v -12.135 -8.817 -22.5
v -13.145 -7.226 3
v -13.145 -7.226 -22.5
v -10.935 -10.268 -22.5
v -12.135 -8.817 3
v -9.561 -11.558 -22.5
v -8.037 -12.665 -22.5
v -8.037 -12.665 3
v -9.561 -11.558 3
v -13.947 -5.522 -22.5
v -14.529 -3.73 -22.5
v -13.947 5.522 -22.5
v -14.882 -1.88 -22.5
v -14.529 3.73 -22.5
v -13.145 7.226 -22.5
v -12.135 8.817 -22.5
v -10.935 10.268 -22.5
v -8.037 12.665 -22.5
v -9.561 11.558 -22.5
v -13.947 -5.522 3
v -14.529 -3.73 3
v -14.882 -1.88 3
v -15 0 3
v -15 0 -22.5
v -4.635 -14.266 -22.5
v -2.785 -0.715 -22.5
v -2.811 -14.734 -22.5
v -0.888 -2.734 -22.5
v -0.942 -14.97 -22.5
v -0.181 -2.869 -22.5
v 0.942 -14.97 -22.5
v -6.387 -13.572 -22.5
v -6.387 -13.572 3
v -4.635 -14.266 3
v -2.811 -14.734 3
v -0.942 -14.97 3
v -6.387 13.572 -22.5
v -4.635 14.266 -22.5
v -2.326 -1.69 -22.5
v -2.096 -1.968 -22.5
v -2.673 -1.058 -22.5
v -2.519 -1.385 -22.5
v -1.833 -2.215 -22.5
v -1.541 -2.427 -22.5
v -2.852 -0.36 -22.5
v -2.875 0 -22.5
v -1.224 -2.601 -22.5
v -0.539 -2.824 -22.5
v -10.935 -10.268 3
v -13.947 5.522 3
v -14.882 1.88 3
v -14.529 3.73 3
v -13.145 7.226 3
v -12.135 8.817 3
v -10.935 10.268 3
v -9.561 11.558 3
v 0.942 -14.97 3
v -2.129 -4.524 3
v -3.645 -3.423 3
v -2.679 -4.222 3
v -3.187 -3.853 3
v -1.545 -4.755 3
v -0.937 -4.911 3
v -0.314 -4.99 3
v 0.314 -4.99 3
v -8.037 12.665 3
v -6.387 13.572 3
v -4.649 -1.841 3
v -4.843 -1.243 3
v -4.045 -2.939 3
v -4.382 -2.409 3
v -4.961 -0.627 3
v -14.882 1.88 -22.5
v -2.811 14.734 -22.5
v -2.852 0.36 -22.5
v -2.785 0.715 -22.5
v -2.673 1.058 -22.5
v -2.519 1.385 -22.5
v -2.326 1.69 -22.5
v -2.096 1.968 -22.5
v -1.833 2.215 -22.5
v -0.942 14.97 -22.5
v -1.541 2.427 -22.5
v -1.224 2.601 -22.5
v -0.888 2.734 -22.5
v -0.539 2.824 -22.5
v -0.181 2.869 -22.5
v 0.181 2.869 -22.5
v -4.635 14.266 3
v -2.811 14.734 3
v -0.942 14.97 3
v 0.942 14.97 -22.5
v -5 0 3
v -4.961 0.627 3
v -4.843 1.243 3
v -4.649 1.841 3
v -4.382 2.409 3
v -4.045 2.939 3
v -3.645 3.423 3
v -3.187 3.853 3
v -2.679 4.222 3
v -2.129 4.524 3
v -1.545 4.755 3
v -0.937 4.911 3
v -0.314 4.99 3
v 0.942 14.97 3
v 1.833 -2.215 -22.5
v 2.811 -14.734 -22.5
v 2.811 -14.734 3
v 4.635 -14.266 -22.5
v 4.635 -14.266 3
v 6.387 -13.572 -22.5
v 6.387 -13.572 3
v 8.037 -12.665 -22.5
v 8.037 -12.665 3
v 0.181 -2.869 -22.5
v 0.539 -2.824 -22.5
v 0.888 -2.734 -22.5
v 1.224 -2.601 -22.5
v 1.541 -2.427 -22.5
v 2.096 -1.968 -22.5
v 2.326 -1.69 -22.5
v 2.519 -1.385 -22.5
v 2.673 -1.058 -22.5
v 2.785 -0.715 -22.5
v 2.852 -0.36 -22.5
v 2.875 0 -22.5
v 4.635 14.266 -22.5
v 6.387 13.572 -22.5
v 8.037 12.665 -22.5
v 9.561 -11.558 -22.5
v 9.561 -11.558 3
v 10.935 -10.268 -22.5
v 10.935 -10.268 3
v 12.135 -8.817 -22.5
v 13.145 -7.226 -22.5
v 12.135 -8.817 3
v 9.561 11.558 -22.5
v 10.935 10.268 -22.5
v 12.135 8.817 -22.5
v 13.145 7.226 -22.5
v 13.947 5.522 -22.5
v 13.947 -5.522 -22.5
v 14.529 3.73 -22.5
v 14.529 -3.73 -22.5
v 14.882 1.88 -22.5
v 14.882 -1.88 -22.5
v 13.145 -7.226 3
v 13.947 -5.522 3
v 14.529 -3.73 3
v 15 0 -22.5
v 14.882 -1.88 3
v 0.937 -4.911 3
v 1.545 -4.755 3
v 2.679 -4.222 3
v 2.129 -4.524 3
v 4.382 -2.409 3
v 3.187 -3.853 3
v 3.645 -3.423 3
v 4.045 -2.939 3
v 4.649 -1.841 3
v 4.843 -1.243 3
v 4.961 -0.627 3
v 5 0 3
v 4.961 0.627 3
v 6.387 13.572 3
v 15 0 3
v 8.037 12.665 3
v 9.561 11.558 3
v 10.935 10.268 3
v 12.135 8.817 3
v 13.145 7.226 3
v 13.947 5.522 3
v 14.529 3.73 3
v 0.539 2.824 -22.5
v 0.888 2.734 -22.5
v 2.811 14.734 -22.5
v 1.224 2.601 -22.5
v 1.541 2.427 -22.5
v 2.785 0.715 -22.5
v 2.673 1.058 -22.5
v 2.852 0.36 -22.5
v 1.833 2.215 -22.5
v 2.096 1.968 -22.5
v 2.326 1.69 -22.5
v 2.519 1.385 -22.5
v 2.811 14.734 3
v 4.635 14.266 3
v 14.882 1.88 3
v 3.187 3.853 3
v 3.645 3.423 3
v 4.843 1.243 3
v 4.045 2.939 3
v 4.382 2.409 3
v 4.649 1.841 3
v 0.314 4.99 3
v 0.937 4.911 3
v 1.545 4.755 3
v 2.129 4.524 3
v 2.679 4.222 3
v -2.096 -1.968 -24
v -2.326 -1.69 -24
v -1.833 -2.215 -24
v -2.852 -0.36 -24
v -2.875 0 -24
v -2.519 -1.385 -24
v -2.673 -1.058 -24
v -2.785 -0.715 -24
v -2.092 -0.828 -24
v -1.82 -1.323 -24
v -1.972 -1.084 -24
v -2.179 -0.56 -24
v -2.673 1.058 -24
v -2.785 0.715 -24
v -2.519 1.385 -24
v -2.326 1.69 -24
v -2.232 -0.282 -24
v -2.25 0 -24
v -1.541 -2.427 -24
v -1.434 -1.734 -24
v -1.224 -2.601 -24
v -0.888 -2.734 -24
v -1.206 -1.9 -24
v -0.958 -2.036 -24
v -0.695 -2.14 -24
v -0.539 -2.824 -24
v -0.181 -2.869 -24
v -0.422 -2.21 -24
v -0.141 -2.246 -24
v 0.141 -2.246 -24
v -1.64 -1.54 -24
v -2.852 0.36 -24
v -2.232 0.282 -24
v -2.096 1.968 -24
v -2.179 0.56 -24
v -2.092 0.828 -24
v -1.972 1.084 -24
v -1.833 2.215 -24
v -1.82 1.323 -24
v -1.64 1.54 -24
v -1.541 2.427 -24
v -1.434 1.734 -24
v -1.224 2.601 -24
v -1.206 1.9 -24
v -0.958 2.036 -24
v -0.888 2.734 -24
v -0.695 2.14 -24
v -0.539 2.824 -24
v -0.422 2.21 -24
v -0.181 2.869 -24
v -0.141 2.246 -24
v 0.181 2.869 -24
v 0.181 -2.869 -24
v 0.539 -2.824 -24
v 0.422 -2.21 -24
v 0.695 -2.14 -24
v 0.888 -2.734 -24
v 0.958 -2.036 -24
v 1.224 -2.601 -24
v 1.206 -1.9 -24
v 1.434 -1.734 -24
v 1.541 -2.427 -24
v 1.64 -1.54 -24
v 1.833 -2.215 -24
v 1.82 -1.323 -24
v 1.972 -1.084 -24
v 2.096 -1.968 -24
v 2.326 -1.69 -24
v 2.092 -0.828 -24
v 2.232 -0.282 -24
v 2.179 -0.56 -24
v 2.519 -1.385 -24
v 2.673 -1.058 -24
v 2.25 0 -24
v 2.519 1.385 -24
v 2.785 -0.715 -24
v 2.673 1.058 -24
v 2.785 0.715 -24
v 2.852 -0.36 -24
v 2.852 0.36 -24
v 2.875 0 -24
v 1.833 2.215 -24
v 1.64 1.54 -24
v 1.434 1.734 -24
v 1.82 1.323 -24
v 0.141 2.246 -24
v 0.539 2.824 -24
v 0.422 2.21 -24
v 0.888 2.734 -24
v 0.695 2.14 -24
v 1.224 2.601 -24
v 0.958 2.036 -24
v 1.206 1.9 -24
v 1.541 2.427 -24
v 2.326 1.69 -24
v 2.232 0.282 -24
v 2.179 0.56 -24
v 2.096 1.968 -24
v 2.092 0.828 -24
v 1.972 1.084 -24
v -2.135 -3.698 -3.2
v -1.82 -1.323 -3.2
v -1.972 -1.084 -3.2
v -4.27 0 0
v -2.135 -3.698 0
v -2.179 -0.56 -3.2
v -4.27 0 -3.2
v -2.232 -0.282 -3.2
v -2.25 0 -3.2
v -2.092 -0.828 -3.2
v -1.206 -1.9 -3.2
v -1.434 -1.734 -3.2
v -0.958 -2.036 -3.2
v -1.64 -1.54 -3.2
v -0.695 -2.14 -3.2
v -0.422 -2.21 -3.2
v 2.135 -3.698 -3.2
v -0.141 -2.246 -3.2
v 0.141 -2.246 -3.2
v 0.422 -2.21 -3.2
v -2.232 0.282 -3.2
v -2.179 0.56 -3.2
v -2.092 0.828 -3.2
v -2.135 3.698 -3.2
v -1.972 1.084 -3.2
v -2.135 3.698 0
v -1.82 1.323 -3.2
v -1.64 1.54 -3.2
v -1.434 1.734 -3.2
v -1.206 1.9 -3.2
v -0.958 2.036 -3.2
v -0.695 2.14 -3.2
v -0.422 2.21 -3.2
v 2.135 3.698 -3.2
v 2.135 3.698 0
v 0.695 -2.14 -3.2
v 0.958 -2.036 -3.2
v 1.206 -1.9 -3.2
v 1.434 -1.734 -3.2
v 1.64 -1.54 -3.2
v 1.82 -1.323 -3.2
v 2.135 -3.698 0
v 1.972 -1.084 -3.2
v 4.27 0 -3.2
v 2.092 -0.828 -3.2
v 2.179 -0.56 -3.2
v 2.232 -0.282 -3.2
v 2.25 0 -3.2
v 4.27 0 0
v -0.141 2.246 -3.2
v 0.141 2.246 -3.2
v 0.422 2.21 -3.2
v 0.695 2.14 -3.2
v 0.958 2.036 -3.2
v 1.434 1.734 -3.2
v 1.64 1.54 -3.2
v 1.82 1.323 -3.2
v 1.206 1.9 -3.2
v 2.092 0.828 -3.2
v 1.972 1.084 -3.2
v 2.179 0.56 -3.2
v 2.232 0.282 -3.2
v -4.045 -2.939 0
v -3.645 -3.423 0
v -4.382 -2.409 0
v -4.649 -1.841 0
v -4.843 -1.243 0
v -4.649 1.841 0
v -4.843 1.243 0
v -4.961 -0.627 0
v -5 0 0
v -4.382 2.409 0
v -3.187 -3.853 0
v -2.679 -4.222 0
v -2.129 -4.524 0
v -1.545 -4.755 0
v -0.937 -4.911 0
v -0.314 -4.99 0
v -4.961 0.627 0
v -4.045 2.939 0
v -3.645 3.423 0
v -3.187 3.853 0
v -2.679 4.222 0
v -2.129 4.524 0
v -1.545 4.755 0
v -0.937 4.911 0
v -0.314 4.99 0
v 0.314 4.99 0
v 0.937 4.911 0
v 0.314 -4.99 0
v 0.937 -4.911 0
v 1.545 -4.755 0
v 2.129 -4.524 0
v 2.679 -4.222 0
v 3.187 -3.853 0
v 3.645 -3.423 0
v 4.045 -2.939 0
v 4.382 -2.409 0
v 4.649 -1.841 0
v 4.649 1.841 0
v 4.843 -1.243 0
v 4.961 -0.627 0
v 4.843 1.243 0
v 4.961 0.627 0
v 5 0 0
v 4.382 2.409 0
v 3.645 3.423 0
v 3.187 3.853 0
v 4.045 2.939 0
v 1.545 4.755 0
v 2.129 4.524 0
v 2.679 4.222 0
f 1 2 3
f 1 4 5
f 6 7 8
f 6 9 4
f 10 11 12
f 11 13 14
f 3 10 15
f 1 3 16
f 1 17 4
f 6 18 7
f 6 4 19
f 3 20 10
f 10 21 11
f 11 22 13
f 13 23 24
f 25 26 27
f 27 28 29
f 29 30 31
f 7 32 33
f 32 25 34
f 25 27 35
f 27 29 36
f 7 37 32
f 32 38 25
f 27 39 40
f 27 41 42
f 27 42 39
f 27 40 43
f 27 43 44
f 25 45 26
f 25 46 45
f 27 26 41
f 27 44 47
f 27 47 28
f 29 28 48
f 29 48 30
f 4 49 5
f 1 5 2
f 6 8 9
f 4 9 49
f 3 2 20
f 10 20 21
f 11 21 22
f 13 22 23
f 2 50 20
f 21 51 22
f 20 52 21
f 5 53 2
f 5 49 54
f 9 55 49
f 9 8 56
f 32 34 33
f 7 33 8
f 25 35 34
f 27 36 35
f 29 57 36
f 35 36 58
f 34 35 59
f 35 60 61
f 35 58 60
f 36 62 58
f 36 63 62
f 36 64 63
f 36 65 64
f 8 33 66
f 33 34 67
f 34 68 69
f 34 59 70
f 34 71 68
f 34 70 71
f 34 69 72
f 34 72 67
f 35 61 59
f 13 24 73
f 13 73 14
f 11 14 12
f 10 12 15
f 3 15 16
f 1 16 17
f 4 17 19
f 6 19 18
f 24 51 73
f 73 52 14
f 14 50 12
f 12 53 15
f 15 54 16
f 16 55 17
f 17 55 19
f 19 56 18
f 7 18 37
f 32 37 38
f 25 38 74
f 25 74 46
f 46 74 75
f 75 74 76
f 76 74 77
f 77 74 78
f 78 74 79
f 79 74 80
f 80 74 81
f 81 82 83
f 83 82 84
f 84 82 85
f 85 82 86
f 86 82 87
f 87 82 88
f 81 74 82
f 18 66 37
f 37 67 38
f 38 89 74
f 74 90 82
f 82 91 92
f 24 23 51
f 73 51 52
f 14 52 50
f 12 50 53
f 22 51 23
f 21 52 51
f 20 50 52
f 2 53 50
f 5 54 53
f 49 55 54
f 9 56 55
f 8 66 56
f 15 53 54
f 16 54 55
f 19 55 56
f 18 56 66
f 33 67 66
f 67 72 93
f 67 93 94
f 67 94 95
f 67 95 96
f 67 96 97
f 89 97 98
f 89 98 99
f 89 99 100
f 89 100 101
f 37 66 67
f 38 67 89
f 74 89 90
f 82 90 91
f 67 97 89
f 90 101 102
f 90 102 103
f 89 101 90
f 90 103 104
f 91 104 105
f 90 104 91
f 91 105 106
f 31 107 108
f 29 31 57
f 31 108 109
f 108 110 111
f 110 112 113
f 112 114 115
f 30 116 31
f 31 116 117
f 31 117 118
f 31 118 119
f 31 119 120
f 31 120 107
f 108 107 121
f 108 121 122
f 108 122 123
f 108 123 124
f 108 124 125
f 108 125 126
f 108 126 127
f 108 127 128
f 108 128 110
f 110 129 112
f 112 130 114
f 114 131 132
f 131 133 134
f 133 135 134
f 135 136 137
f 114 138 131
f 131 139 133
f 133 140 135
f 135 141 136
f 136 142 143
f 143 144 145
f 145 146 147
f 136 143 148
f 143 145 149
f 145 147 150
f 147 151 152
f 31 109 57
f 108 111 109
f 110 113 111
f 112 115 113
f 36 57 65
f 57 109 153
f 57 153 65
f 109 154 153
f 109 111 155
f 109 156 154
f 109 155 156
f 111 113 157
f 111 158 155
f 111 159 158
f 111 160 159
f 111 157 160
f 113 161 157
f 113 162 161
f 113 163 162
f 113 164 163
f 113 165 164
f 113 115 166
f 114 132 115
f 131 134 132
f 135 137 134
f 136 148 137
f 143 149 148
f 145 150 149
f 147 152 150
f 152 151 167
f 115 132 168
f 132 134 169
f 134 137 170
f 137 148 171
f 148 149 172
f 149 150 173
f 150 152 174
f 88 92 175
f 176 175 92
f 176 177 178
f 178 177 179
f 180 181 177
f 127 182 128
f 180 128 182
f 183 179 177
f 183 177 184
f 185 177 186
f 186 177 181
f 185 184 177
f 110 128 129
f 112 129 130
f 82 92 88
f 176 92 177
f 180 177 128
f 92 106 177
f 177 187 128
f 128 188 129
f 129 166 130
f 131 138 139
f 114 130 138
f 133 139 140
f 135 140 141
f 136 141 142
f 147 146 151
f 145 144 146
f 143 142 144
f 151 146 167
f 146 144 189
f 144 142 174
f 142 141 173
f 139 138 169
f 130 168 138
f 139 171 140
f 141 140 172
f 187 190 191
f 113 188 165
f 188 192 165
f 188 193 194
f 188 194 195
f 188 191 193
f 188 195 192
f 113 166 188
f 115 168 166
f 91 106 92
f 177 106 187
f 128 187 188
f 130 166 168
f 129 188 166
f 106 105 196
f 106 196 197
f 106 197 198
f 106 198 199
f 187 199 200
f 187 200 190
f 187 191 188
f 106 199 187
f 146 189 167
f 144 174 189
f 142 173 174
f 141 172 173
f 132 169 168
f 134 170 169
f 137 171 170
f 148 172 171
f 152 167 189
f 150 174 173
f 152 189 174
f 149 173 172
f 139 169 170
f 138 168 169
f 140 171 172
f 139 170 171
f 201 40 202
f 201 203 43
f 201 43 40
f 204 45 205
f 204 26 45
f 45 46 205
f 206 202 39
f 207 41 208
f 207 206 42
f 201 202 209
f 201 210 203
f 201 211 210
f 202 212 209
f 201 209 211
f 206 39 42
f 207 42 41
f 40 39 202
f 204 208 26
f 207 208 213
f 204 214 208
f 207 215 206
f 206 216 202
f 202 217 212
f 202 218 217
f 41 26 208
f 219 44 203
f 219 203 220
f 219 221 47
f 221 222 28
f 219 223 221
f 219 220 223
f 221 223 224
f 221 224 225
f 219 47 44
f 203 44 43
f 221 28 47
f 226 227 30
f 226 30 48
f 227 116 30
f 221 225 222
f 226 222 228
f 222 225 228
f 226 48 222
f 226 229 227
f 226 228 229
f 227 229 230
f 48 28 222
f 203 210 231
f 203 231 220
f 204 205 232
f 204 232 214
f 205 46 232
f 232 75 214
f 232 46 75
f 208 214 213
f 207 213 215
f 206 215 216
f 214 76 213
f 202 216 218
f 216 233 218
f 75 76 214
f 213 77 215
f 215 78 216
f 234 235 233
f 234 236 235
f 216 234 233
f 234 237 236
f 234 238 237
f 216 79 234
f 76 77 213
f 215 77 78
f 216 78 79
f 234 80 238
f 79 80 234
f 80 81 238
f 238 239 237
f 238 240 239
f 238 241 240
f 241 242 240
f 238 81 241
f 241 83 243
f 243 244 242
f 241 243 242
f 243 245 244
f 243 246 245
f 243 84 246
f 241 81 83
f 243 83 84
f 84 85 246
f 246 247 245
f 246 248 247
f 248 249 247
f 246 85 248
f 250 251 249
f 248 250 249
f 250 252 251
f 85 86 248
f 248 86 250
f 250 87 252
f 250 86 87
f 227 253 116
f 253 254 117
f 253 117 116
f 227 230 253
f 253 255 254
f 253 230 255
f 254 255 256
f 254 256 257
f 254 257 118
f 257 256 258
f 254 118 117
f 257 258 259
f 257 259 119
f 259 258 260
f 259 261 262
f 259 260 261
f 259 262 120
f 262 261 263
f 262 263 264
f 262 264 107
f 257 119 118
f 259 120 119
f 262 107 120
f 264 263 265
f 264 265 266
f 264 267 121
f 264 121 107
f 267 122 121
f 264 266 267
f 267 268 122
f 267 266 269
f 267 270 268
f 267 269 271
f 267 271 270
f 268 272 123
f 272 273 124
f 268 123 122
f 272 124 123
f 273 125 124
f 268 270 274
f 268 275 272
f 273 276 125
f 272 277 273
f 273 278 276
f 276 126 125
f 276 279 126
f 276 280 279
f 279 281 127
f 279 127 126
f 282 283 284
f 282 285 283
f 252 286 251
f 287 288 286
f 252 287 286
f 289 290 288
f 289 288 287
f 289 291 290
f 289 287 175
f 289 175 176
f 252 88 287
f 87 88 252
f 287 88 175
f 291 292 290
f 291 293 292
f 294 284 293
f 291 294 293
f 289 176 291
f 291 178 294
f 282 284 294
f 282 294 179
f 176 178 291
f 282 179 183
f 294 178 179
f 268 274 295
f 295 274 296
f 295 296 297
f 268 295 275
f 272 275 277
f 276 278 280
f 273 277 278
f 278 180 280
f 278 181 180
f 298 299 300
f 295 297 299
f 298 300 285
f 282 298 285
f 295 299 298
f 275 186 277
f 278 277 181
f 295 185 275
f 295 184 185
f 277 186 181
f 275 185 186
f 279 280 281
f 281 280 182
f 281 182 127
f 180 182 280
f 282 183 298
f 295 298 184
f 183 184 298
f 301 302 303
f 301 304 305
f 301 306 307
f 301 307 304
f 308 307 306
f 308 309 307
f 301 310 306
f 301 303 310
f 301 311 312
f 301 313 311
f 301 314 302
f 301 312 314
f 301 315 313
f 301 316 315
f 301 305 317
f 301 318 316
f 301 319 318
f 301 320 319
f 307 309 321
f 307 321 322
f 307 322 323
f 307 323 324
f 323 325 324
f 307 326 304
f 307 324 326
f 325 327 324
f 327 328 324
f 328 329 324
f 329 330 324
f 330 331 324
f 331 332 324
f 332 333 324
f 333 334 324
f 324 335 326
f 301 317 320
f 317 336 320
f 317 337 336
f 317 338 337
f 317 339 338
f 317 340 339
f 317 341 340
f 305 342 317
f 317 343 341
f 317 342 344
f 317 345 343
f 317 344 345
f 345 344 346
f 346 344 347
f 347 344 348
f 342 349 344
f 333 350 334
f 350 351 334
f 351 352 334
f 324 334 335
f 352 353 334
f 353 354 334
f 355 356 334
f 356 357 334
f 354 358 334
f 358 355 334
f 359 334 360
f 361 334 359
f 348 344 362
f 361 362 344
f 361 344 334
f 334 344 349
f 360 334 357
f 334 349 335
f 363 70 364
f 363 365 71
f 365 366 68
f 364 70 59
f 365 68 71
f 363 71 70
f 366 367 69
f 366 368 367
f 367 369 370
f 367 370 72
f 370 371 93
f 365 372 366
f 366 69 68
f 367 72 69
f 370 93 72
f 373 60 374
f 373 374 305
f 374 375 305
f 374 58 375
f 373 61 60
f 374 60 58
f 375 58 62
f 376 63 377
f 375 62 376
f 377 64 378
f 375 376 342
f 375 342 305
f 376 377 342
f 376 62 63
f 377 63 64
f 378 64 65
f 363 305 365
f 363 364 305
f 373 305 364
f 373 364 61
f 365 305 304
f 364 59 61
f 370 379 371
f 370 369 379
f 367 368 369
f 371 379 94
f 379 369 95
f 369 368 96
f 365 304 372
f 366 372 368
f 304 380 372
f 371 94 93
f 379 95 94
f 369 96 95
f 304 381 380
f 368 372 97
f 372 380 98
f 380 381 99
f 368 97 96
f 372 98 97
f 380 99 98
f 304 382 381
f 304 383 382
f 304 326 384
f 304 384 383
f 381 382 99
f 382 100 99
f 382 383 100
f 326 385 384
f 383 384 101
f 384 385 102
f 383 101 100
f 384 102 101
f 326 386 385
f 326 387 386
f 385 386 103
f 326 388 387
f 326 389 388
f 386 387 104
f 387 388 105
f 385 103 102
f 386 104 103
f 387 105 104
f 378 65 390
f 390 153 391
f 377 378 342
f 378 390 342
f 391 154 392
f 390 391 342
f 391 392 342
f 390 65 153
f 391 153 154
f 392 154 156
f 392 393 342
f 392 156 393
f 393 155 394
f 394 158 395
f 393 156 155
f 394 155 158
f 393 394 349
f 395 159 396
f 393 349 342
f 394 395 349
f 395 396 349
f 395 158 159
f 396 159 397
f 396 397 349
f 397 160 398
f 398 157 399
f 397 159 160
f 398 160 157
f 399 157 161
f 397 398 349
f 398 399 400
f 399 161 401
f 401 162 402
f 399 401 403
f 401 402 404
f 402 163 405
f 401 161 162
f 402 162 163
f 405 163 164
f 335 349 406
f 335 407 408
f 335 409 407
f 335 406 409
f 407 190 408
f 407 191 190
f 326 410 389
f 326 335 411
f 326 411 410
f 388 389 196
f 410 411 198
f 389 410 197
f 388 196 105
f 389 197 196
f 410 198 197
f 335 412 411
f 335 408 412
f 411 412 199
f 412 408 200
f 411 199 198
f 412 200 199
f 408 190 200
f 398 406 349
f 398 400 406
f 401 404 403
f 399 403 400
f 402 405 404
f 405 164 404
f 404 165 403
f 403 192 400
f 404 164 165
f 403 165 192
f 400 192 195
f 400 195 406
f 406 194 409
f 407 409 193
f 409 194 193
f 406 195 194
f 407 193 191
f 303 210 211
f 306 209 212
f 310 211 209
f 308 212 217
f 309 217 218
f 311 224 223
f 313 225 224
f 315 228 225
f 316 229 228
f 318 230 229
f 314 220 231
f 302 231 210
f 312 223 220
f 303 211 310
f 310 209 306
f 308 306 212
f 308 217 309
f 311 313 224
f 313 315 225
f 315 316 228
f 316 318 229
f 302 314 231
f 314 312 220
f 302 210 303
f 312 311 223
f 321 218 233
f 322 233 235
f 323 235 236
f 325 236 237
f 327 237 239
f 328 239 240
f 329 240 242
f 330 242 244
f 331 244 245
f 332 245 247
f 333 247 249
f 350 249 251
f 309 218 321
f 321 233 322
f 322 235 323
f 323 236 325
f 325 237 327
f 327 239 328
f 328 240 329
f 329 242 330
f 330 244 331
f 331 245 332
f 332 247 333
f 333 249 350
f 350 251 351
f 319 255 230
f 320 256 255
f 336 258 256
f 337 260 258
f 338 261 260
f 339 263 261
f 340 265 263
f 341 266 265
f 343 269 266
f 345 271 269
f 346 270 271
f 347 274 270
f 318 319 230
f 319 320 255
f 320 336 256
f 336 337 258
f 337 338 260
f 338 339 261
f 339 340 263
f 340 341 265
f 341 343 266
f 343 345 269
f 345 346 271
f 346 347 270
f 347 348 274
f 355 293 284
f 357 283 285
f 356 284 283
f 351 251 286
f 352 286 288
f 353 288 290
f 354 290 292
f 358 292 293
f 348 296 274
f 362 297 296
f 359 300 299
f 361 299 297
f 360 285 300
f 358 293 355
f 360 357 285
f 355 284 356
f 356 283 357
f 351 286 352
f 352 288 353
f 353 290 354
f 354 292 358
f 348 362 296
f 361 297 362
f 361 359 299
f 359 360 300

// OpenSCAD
$fn = 50;

difference() {
	union() {
		translate(v = [0, 0, -22.5]) {
			cylinder(h = 25.5, r = 15.0);
		}
		#translate(v = [0, 0, -24.0]) {
			cylinder(h = 24, r = 2.875);
		}
	}
	union() {
		translate(v = [0, 0, 0]) {
			rotate(a = [0, 0, 0]) {
				difference() {
					union() {
						translate(v = [0, 0, -3.2]) {
							linear_extrude(height = 3.2) {
								polygon(points = [[4.2698, 0.0], [2.1349000000000005, 3.697755269078796], [-2.134899999999999, 3.6977552690787965], [-4.2698, 5.228996902999369e-16], [-2.134900000000002, -3.6977552690787956], [2.1348999999999974, -3.697755269078798]]);
							}
						}
					}
					union();
				}
			}
		}
		#cylinder(h = 3, r = 5.0);
		#translate(v = [0, 0, -100.0]) {
			cylinder(h = 200, r = 2.25);
		}
	}
}
